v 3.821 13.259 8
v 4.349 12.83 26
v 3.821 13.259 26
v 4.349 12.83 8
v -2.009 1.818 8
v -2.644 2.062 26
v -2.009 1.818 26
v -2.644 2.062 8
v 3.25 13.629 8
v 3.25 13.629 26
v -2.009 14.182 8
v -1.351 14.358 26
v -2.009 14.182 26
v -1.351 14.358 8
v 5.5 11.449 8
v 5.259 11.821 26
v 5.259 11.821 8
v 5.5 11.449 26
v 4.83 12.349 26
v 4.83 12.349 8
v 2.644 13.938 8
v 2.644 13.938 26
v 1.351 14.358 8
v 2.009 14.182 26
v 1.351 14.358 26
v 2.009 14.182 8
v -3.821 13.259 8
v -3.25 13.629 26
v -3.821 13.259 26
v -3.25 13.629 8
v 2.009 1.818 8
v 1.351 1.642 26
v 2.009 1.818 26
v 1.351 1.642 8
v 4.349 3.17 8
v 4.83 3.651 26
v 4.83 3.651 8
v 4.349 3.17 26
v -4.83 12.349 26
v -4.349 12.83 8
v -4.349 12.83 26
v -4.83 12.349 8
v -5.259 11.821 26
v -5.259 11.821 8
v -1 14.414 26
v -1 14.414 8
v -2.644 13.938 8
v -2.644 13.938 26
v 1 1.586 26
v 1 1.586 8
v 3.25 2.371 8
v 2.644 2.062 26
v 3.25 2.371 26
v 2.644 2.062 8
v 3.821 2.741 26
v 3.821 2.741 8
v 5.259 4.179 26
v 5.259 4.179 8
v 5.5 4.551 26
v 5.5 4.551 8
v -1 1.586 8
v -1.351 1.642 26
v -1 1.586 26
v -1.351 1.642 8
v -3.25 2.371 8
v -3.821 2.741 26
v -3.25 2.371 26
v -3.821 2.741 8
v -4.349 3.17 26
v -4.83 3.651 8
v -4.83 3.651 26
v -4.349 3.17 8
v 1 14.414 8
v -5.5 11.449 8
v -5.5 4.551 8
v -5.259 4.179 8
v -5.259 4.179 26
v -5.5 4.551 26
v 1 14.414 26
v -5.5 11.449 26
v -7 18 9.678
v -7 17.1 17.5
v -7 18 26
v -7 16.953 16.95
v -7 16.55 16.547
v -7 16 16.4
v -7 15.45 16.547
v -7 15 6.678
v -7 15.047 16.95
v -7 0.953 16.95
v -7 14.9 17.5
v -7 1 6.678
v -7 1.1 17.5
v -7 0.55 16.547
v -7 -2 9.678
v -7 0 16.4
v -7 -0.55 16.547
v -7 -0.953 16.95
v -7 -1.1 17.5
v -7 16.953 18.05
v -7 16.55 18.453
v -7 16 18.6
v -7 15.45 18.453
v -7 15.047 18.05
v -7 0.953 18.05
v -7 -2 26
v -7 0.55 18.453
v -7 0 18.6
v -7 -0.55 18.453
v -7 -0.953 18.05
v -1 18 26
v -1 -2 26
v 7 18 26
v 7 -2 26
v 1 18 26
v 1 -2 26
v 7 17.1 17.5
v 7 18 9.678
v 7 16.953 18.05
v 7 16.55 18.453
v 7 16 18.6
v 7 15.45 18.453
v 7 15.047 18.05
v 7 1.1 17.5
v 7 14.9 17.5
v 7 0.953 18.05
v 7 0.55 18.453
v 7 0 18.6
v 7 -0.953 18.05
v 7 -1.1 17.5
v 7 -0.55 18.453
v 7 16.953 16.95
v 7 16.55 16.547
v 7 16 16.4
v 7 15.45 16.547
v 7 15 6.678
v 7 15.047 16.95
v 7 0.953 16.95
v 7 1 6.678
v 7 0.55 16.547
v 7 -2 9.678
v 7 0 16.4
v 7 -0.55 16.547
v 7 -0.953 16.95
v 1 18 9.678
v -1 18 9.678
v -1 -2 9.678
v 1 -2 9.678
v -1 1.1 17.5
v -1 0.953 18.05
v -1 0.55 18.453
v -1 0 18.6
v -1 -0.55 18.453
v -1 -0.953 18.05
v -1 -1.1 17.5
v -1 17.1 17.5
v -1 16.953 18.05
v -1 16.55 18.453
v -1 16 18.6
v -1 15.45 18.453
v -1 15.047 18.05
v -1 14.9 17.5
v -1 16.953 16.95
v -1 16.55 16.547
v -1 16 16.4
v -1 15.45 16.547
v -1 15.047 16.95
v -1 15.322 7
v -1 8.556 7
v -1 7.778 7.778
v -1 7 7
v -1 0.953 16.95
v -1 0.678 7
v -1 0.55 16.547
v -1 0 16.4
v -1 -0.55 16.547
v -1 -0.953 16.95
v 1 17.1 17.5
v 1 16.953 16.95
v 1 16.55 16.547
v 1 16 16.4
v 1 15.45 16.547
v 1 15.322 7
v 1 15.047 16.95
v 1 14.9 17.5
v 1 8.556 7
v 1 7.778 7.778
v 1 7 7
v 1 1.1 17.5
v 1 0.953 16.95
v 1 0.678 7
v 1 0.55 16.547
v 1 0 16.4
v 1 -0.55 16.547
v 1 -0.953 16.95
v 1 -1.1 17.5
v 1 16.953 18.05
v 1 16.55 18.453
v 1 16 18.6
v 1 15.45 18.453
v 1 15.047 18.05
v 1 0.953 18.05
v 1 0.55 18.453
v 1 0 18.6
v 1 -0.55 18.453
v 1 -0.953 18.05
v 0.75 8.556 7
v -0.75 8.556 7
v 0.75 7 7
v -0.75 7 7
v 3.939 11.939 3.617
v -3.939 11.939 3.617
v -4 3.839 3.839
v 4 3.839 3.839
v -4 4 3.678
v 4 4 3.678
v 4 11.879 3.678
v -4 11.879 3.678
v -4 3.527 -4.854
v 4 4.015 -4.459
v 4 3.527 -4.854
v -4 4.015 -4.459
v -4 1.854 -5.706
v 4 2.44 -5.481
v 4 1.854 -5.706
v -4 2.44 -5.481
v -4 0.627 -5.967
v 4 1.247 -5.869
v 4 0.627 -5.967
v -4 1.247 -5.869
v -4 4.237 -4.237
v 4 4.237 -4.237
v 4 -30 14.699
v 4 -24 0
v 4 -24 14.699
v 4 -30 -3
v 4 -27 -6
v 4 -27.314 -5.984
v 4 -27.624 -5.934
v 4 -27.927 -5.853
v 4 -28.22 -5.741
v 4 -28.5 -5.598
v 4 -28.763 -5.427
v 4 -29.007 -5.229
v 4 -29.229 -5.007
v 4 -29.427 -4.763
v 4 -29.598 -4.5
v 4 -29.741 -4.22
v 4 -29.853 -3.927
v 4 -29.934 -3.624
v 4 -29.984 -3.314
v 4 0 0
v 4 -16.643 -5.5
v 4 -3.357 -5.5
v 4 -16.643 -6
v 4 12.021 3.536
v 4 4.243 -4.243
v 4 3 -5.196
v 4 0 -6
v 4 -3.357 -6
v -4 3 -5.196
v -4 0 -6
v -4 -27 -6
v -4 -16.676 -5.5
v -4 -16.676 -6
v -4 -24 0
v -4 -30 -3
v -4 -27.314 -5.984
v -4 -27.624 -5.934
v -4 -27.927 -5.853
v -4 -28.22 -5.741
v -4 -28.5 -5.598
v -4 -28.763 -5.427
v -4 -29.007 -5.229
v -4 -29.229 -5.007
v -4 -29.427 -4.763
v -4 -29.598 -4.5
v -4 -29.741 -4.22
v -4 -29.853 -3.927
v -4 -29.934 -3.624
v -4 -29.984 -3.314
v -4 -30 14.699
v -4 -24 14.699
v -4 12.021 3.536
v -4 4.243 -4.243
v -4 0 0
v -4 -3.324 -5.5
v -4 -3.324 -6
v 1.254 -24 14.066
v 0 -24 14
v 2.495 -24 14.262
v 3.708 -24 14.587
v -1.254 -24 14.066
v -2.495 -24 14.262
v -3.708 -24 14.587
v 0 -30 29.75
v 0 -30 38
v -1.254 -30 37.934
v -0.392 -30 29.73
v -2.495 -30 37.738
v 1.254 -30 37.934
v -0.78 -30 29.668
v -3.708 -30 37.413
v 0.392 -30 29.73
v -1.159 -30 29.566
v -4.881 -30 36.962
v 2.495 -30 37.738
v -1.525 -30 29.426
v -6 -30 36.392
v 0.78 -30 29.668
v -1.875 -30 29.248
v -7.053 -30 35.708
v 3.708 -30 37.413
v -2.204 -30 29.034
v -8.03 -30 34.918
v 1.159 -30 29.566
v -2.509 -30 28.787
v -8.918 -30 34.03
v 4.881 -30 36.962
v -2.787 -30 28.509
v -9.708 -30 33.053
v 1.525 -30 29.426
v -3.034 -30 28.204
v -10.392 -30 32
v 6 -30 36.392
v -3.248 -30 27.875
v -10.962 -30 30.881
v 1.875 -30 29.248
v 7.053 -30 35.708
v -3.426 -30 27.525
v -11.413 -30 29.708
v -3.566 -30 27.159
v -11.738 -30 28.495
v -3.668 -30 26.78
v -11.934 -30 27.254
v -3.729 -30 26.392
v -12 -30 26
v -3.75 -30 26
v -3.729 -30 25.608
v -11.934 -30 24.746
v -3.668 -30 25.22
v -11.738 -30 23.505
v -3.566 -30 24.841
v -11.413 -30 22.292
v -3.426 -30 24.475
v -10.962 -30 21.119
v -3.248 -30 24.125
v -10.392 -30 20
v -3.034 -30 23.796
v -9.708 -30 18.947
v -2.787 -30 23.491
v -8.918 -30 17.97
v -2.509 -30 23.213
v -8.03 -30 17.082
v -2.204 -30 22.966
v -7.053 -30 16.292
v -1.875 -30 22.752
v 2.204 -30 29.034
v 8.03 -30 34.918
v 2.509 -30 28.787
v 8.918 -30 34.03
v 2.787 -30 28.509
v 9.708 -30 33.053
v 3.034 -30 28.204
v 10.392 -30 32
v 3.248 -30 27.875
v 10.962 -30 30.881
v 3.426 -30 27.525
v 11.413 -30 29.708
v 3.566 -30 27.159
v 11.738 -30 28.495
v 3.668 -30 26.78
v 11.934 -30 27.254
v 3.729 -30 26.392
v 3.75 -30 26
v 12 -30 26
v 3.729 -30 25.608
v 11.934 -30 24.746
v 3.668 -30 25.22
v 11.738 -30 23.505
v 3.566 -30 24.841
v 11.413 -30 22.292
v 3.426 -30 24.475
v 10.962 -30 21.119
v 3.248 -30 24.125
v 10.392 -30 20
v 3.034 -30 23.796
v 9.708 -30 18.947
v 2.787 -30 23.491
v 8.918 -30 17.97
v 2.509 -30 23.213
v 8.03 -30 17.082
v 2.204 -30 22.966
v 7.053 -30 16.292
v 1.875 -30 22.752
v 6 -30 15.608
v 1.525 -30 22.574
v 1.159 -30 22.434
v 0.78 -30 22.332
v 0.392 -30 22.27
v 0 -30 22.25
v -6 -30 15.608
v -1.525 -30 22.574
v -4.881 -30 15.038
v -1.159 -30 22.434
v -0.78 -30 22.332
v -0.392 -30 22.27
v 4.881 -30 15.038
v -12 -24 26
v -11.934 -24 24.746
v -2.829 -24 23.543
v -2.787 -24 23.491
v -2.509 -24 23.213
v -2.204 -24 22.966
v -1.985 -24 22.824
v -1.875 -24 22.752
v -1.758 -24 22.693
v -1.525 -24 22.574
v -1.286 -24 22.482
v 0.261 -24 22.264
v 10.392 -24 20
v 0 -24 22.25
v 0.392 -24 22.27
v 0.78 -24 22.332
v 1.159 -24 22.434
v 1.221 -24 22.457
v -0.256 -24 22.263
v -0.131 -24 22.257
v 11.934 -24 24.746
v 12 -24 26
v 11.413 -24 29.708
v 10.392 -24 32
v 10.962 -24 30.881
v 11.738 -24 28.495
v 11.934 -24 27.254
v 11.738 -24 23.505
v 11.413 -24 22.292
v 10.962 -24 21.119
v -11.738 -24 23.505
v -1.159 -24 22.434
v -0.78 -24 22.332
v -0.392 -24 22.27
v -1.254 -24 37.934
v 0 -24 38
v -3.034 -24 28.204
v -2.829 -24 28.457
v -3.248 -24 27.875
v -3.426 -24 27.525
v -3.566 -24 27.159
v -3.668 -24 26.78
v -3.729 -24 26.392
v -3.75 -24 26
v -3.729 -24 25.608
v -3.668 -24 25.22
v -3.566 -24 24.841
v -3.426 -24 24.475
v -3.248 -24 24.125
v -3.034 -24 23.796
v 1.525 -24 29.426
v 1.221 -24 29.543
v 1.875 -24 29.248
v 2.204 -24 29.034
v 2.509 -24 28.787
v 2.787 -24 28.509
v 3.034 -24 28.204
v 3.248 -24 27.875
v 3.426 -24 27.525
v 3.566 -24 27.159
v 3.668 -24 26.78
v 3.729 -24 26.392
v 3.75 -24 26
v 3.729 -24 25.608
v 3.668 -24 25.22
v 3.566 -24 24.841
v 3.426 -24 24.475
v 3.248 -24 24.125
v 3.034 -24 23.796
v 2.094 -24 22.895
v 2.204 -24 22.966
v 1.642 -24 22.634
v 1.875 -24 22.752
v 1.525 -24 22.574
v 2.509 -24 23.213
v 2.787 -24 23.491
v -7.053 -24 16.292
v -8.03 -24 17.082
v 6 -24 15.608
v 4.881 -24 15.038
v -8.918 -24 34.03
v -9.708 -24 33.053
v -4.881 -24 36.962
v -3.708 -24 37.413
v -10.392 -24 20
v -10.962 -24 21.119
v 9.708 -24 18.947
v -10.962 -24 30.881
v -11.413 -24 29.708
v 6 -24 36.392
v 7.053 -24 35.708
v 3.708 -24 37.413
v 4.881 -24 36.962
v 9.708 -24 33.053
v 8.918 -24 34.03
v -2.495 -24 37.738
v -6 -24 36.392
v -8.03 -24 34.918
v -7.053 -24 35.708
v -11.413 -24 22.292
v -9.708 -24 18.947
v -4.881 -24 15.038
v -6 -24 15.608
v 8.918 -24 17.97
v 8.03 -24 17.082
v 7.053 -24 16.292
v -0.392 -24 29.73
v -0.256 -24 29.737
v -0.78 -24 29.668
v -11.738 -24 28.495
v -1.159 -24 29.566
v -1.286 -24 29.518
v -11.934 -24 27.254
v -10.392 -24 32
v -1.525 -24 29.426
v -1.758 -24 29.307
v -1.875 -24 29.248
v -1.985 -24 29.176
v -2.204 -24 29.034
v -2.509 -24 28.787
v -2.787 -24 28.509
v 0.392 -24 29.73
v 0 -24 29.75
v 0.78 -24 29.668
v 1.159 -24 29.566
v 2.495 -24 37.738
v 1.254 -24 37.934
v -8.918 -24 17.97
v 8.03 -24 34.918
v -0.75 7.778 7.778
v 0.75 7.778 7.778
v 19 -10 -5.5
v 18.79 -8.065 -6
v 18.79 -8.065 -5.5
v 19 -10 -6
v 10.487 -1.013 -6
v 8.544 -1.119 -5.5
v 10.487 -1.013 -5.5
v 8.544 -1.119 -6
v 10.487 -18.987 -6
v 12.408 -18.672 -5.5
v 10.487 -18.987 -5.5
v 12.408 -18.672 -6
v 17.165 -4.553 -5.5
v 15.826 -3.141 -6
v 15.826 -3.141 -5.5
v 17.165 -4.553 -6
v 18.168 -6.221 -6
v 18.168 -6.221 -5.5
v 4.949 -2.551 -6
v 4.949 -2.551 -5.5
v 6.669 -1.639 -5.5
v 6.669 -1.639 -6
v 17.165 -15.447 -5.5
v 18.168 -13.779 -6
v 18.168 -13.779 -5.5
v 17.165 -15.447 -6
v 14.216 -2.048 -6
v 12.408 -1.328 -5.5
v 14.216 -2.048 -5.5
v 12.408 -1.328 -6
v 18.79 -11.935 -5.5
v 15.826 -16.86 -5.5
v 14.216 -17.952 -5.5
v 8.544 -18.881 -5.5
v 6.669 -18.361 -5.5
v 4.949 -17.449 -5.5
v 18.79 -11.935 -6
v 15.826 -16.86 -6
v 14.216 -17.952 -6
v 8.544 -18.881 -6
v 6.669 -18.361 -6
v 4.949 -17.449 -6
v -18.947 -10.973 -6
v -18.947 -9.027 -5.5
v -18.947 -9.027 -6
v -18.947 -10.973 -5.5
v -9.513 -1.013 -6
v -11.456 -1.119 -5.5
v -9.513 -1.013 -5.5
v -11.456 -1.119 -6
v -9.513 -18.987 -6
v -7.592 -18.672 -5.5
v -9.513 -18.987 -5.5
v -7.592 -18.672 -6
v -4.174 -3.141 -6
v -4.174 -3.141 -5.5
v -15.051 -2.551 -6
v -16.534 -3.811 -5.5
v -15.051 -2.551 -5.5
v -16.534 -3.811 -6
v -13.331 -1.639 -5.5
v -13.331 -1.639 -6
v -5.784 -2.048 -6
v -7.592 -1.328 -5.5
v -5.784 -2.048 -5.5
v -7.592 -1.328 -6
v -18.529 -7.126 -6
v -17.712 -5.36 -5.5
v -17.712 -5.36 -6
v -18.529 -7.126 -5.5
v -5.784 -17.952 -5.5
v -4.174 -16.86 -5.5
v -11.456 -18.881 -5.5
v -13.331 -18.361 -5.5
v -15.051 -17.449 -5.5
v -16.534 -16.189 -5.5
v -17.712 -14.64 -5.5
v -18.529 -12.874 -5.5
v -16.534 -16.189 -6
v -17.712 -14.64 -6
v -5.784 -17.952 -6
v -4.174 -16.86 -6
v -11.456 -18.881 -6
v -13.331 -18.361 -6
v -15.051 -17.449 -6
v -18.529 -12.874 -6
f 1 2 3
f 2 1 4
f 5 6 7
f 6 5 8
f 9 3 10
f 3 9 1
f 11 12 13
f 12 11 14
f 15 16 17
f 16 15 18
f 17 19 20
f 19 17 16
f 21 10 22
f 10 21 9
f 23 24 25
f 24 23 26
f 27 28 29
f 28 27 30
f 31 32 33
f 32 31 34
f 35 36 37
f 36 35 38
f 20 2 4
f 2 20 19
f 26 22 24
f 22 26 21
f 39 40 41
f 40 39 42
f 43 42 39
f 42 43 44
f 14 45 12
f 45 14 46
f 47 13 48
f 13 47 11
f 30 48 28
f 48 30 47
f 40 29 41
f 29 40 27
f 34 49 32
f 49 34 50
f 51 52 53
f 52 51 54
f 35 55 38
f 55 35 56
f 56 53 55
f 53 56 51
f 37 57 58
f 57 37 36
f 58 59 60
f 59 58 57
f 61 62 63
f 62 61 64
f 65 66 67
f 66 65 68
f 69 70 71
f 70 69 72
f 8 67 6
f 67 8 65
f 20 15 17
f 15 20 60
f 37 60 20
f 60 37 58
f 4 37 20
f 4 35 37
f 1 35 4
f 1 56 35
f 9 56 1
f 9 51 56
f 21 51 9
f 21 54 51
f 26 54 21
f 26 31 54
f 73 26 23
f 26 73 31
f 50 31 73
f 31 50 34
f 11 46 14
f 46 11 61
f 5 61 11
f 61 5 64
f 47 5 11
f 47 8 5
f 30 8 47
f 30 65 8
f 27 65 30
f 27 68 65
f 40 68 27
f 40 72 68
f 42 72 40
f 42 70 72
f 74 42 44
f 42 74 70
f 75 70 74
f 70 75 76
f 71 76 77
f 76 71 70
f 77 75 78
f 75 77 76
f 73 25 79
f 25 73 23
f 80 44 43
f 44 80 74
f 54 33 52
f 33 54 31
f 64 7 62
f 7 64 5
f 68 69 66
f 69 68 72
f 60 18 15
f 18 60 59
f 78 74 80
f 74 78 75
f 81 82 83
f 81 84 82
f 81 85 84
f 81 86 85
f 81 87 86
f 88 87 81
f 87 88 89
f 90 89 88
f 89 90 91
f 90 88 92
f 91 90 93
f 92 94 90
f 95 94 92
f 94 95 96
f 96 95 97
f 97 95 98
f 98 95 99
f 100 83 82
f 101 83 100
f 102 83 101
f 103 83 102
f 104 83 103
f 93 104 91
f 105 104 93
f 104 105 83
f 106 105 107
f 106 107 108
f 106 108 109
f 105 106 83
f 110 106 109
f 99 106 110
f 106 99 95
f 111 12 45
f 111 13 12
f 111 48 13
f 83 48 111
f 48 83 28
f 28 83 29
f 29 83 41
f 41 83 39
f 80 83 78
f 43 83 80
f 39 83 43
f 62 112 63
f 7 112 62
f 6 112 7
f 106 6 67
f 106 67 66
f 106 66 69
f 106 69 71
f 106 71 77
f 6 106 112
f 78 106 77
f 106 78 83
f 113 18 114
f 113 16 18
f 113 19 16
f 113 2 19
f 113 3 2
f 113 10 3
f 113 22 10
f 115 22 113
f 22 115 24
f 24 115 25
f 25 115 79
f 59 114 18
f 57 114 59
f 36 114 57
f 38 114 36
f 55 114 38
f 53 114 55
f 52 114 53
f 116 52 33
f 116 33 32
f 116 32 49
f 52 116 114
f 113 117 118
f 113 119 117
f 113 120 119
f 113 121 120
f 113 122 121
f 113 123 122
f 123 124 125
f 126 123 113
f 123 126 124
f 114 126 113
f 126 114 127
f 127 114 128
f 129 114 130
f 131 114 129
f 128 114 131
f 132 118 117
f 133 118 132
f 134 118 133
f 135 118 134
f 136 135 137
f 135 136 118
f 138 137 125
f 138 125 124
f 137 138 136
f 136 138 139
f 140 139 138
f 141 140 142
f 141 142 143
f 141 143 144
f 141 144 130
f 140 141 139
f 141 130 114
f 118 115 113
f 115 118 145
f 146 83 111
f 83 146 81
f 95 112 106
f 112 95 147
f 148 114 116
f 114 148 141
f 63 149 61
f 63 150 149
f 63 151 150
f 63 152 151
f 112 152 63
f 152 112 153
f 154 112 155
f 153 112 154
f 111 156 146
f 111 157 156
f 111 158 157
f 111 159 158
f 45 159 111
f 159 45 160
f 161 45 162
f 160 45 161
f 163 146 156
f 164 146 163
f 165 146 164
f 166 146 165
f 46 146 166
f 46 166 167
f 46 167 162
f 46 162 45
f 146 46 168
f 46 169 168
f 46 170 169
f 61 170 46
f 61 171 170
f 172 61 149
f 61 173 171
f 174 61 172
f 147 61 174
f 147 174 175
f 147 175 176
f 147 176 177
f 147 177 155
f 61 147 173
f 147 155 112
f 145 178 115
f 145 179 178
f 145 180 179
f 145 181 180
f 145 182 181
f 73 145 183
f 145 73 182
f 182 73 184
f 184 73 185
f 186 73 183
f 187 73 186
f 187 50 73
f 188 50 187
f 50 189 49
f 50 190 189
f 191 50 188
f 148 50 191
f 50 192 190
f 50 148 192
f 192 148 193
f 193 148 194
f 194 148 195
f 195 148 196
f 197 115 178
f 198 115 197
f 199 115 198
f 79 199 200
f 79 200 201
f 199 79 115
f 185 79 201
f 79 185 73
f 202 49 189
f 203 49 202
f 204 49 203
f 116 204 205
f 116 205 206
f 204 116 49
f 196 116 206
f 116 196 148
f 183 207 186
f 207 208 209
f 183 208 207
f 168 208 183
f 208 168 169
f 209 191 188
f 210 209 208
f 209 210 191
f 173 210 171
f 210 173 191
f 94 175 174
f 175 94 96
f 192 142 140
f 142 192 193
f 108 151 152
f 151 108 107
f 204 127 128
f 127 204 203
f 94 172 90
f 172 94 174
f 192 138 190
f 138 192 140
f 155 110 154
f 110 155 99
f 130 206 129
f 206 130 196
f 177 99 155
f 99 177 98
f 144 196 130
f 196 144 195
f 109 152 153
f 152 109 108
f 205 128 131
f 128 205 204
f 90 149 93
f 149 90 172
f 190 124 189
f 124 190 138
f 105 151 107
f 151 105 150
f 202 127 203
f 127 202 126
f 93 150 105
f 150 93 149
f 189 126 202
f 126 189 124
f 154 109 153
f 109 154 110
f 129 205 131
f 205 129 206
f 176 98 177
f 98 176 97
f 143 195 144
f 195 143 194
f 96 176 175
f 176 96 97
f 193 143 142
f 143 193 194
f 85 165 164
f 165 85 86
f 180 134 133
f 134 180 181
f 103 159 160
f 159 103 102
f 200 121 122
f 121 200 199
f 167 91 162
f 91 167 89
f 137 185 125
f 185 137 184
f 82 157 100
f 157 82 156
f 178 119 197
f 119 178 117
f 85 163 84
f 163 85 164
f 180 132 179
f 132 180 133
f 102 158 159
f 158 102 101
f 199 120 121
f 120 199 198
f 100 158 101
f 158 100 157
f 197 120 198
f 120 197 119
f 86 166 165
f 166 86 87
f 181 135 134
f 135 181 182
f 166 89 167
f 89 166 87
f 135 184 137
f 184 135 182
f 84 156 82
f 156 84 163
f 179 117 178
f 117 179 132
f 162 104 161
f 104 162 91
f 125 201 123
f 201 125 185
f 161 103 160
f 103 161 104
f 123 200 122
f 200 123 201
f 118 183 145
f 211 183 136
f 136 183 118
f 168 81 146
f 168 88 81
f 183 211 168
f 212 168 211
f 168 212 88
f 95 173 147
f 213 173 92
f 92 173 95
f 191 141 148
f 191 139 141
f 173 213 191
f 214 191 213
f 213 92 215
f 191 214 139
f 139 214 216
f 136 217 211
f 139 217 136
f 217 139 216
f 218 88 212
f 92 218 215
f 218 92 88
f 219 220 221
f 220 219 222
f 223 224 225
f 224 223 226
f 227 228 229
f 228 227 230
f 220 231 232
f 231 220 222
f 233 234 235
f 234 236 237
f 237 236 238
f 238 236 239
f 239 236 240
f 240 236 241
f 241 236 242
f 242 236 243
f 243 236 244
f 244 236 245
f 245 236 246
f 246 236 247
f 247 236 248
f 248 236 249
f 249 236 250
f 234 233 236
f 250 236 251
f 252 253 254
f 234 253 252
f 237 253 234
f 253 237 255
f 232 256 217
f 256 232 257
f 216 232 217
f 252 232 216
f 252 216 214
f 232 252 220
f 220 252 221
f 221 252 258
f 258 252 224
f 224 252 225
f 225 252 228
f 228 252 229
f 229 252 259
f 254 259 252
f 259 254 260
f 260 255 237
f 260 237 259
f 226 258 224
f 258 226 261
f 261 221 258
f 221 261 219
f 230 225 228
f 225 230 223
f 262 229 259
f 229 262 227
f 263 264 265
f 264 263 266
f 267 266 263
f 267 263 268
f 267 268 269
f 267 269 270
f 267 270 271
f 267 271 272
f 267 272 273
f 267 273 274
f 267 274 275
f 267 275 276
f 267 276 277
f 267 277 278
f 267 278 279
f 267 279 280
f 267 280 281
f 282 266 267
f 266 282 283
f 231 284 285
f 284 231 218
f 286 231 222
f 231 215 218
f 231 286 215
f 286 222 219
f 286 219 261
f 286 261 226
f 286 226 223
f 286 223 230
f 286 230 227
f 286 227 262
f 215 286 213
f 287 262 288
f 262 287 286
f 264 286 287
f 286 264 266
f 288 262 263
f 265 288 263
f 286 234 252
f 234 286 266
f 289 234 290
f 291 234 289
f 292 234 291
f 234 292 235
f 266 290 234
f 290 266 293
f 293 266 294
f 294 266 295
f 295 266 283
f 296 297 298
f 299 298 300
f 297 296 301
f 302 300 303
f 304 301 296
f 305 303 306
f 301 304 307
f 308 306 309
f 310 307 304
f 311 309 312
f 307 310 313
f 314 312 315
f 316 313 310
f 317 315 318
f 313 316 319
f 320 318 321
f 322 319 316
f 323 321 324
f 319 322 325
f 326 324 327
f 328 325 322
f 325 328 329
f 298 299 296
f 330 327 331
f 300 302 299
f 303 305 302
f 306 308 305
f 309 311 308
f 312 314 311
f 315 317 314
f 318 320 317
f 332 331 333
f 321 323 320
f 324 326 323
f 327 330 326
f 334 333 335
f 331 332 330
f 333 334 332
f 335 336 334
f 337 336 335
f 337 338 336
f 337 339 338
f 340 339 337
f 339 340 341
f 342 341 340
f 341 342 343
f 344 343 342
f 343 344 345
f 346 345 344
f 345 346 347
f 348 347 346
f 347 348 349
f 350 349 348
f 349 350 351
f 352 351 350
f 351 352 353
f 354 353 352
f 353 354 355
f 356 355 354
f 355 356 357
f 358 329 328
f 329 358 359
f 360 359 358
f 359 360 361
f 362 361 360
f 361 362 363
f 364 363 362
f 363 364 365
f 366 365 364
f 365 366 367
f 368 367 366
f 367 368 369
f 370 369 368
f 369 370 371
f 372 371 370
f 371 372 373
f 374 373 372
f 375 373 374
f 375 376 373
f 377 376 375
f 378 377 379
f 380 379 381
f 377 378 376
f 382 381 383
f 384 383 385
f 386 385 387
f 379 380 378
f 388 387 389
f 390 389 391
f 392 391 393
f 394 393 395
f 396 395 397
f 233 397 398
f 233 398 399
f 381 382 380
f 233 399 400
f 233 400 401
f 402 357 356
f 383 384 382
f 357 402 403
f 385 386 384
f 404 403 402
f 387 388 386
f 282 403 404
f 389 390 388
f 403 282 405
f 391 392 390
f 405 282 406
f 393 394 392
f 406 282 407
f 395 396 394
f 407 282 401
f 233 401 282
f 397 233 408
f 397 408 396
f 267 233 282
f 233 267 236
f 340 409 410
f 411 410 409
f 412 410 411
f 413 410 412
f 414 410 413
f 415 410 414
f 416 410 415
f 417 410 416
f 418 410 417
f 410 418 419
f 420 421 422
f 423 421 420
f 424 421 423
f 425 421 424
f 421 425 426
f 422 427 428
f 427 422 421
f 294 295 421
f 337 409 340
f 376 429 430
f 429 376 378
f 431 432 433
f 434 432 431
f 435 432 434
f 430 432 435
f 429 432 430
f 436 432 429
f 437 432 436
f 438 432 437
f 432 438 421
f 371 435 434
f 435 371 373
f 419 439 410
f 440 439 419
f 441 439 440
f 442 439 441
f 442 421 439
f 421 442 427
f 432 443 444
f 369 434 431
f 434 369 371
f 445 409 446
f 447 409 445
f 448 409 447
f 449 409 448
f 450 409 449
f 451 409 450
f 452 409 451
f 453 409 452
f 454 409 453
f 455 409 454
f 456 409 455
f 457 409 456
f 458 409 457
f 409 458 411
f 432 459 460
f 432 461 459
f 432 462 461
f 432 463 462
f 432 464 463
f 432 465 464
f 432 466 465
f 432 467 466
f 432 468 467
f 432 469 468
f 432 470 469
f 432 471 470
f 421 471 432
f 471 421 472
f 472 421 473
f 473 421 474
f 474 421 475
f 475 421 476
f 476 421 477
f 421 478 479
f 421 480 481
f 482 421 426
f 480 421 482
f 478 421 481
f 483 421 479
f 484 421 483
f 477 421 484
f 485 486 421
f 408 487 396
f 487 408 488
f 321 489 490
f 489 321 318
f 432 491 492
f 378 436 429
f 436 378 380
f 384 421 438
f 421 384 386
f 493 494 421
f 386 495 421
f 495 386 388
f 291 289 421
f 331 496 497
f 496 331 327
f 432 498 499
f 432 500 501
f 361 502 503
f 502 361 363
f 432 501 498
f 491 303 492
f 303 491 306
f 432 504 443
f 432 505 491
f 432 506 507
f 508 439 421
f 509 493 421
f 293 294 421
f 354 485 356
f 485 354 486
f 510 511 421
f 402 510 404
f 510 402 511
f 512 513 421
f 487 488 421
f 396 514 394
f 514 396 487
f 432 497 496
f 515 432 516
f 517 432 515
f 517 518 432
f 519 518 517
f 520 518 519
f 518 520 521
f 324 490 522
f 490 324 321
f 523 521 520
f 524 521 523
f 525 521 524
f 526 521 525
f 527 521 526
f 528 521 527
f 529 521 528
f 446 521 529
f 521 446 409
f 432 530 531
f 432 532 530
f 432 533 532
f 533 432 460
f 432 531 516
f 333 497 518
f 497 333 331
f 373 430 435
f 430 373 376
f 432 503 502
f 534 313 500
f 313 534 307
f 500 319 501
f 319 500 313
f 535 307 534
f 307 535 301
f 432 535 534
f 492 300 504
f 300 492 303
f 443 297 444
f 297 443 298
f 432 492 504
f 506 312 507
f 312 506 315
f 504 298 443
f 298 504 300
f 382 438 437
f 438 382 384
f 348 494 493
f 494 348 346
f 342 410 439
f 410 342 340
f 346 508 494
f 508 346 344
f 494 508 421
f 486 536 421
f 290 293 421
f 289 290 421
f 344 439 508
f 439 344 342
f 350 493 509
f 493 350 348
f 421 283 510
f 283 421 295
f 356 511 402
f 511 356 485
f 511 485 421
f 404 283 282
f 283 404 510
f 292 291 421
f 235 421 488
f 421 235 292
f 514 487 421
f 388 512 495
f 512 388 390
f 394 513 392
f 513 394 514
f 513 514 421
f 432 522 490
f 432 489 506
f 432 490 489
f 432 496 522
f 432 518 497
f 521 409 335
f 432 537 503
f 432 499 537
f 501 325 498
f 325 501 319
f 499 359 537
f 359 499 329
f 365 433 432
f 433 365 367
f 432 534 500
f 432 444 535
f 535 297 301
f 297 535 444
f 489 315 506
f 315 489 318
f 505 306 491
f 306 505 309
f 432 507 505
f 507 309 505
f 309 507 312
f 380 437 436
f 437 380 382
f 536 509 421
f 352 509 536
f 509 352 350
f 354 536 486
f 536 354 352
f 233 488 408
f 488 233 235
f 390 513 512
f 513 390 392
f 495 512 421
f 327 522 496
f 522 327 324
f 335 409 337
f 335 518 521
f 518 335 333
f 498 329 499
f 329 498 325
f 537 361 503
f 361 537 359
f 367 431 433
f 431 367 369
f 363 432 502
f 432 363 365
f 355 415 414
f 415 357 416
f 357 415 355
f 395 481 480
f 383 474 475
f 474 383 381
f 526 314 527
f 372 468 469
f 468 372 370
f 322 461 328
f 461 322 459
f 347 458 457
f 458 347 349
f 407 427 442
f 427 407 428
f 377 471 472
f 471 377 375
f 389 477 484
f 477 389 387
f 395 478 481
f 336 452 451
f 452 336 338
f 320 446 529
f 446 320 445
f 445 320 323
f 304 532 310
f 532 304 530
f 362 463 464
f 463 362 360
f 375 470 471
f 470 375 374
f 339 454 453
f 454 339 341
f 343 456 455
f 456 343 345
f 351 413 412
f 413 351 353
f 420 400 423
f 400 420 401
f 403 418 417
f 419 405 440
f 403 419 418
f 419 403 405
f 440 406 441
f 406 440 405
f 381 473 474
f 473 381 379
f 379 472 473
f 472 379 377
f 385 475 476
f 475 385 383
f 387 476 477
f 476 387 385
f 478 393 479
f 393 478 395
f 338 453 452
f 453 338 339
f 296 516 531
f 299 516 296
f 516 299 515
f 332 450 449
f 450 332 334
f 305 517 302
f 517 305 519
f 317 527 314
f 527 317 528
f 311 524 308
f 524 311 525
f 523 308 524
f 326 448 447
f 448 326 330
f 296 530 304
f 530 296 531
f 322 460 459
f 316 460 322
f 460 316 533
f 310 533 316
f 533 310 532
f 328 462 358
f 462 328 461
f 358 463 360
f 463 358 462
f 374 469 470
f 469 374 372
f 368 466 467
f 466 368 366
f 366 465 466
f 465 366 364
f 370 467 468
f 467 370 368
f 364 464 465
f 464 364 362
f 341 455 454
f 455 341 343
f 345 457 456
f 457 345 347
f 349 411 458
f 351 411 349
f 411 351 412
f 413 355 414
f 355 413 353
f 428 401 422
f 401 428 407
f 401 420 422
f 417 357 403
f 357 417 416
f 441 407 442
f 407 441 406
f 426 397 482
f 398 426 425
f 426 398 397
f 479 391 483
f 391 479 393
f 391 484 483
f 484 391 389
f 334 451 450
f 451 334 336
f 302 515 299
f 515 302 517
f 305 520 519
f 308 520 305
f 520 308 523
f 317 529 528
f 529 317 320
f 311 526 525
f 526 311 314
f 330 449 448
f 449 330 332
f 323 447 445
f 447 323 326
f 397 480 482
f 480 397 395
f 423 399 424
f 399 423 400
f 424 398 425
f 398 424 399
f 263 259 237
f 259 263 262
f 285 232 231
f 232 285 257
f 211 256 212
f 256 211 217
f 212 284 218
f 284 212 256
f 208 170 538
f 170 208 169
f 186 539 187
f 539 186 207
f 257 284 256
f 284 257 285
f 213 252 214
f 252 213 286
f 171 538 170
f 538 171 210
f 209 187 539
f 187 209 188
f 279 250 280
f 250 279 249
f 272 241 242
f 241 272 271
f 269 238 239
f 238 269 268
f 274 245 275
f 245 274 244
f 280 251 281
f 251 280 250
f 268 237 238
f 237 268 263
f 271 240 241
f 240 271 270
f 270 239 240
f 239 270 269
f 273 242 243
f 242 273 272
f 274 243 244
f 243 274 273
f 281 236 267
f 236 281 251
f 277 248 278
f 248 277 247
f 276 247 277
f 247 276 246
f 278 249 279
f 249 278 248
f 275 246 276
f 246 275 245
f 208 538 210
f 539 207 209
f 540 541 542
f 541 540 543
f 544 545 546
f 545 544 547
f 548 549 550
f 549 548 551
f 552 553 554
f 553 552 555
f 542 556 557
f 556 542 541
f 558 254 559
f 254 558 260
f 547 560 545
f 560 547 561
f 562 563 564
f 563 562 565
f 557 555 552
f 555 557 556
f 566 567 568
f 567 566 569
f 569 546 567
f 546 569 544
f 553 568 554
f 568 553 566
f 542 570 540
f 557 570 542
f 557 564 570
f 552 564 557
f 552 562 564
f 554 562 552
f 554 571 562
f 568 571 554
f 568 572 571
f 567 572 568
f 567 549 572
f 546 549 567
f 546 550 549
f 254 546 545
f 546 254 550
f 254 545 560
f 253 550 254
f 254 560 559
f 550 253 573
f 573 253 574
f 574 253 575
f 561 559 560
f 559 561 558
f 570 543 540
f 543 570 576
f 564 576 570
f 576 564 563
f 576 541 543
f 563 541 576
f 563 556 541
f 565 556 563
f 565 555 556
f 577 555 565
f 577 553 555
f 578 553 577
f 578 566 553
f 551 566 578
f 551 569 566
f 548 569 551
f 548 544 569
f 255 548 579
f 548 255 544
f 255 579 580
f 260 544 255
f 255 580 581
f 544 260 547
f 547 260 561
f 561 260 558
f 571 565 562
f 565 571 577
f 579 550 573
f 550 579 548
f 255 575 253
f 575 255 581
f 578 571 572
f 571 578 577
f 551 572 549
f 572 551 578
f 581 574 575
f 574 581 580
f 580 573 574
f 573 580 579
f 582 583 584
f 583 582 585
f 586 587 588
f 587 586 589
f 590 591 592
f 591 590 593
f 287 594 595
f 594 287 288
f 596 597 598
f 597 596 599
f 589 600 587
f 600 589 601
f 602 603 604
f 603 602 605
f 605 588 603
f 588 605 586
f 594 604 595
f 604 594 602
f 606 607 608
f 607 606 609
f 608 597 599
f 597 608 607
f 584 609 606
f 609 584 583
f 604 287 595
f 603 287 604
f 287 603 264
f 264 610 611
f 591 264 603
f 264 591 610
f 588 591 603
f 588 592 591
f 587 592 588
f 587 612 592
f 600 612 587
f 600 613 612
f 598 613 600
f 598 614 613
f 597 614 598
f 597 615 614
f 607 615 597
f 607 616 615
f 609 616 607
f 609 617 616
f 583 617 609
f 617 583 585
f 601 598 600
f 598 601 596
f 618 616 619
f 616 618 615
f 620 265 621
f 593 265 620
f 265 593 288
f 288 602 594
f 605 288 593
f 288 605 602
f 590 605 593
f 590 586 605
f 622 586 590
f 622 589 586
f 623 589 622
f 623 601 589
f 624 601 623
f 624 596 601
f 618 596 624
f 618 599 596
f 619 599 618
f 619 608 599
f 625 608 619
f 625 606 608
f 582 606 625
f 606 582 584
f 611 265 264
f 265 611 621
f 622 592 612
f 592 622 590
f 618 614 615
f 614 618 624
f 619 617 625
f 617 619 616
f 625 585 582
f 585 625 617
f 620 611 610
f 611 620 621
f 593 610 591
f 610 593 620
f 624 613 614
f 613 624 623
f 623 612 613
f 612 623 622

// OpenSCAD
translate([0,8,3])clamp();

translate([10,-10,-6])cylinder(d=18,h=0.5);
translate([-10,-10,-6])cylinder(d=18,h=0.5);

difference(){
rotate([-90,0,0])translate([-4,0,0])bracket();
translate([-0.75,0,6])cube([1.5,22,22]);
}    

module bracket(){
$fn=60;
rotate([0,90,0])
difference(){
union(){
cube([27,6,8]);
rotate([0,0,225])translate([0,-6,0])cube([11,6,8]);
difference(){
cylinder(r=6,h=8);
translate([-10,-20,-1])cube([24,20,20]);
}
translate([27,3,0])rotate([0,0,-90])
cylinder(d=6,h=8);
difference(){
union(){
translate([24,-26,0])cube([6,29,8]);
translate([24,-26,4])rotate([0,90,0])
cylinder(d=24,h=6);
}
translate([21,-26,4])rotate([0,90,0])
cylinder(d=7.5,h=9);
}
}
//translate([-18,-20,-1])cube([10,10,20]);
}
}

module clamp(){
difference(){
translate([-7,-10,0])
cube([14,20,23]);
difference(){
    translate([0,0,5])cylinder(d=13,h=25,$fn=60);
    translate([6.5,0,12])cube([2,12,25],center=true);
    translate([-6.5,0,12])cube([2,12,25],center=true);
}
translate([-1,-11,4])cube([2,22,25]);
translate([-9,-8,14.5])rotate([0,90,0])
cylinder(d=2.2,h=21,$fn=12);
translate([-9,8,14.5])rotate([0,90,0])
cylinder(d=2.2,h=21,$fn=12);
translate([0,21,0])rotate([45,0,0])cube(size=[25,25,25],center=true);
translate([0,-21,0])rotate([45,0,0])cube(size=[25,25,25],center=true);
translate([21,0,0])rotate([0,0,90])rotate([45,0,0])
cube(size=[25,25,25],center=true);
translate([-21,0,0])rotate([0,0,90])rotate([45,0,0])
cube(size=[25,25,25],center=true);
}
}
